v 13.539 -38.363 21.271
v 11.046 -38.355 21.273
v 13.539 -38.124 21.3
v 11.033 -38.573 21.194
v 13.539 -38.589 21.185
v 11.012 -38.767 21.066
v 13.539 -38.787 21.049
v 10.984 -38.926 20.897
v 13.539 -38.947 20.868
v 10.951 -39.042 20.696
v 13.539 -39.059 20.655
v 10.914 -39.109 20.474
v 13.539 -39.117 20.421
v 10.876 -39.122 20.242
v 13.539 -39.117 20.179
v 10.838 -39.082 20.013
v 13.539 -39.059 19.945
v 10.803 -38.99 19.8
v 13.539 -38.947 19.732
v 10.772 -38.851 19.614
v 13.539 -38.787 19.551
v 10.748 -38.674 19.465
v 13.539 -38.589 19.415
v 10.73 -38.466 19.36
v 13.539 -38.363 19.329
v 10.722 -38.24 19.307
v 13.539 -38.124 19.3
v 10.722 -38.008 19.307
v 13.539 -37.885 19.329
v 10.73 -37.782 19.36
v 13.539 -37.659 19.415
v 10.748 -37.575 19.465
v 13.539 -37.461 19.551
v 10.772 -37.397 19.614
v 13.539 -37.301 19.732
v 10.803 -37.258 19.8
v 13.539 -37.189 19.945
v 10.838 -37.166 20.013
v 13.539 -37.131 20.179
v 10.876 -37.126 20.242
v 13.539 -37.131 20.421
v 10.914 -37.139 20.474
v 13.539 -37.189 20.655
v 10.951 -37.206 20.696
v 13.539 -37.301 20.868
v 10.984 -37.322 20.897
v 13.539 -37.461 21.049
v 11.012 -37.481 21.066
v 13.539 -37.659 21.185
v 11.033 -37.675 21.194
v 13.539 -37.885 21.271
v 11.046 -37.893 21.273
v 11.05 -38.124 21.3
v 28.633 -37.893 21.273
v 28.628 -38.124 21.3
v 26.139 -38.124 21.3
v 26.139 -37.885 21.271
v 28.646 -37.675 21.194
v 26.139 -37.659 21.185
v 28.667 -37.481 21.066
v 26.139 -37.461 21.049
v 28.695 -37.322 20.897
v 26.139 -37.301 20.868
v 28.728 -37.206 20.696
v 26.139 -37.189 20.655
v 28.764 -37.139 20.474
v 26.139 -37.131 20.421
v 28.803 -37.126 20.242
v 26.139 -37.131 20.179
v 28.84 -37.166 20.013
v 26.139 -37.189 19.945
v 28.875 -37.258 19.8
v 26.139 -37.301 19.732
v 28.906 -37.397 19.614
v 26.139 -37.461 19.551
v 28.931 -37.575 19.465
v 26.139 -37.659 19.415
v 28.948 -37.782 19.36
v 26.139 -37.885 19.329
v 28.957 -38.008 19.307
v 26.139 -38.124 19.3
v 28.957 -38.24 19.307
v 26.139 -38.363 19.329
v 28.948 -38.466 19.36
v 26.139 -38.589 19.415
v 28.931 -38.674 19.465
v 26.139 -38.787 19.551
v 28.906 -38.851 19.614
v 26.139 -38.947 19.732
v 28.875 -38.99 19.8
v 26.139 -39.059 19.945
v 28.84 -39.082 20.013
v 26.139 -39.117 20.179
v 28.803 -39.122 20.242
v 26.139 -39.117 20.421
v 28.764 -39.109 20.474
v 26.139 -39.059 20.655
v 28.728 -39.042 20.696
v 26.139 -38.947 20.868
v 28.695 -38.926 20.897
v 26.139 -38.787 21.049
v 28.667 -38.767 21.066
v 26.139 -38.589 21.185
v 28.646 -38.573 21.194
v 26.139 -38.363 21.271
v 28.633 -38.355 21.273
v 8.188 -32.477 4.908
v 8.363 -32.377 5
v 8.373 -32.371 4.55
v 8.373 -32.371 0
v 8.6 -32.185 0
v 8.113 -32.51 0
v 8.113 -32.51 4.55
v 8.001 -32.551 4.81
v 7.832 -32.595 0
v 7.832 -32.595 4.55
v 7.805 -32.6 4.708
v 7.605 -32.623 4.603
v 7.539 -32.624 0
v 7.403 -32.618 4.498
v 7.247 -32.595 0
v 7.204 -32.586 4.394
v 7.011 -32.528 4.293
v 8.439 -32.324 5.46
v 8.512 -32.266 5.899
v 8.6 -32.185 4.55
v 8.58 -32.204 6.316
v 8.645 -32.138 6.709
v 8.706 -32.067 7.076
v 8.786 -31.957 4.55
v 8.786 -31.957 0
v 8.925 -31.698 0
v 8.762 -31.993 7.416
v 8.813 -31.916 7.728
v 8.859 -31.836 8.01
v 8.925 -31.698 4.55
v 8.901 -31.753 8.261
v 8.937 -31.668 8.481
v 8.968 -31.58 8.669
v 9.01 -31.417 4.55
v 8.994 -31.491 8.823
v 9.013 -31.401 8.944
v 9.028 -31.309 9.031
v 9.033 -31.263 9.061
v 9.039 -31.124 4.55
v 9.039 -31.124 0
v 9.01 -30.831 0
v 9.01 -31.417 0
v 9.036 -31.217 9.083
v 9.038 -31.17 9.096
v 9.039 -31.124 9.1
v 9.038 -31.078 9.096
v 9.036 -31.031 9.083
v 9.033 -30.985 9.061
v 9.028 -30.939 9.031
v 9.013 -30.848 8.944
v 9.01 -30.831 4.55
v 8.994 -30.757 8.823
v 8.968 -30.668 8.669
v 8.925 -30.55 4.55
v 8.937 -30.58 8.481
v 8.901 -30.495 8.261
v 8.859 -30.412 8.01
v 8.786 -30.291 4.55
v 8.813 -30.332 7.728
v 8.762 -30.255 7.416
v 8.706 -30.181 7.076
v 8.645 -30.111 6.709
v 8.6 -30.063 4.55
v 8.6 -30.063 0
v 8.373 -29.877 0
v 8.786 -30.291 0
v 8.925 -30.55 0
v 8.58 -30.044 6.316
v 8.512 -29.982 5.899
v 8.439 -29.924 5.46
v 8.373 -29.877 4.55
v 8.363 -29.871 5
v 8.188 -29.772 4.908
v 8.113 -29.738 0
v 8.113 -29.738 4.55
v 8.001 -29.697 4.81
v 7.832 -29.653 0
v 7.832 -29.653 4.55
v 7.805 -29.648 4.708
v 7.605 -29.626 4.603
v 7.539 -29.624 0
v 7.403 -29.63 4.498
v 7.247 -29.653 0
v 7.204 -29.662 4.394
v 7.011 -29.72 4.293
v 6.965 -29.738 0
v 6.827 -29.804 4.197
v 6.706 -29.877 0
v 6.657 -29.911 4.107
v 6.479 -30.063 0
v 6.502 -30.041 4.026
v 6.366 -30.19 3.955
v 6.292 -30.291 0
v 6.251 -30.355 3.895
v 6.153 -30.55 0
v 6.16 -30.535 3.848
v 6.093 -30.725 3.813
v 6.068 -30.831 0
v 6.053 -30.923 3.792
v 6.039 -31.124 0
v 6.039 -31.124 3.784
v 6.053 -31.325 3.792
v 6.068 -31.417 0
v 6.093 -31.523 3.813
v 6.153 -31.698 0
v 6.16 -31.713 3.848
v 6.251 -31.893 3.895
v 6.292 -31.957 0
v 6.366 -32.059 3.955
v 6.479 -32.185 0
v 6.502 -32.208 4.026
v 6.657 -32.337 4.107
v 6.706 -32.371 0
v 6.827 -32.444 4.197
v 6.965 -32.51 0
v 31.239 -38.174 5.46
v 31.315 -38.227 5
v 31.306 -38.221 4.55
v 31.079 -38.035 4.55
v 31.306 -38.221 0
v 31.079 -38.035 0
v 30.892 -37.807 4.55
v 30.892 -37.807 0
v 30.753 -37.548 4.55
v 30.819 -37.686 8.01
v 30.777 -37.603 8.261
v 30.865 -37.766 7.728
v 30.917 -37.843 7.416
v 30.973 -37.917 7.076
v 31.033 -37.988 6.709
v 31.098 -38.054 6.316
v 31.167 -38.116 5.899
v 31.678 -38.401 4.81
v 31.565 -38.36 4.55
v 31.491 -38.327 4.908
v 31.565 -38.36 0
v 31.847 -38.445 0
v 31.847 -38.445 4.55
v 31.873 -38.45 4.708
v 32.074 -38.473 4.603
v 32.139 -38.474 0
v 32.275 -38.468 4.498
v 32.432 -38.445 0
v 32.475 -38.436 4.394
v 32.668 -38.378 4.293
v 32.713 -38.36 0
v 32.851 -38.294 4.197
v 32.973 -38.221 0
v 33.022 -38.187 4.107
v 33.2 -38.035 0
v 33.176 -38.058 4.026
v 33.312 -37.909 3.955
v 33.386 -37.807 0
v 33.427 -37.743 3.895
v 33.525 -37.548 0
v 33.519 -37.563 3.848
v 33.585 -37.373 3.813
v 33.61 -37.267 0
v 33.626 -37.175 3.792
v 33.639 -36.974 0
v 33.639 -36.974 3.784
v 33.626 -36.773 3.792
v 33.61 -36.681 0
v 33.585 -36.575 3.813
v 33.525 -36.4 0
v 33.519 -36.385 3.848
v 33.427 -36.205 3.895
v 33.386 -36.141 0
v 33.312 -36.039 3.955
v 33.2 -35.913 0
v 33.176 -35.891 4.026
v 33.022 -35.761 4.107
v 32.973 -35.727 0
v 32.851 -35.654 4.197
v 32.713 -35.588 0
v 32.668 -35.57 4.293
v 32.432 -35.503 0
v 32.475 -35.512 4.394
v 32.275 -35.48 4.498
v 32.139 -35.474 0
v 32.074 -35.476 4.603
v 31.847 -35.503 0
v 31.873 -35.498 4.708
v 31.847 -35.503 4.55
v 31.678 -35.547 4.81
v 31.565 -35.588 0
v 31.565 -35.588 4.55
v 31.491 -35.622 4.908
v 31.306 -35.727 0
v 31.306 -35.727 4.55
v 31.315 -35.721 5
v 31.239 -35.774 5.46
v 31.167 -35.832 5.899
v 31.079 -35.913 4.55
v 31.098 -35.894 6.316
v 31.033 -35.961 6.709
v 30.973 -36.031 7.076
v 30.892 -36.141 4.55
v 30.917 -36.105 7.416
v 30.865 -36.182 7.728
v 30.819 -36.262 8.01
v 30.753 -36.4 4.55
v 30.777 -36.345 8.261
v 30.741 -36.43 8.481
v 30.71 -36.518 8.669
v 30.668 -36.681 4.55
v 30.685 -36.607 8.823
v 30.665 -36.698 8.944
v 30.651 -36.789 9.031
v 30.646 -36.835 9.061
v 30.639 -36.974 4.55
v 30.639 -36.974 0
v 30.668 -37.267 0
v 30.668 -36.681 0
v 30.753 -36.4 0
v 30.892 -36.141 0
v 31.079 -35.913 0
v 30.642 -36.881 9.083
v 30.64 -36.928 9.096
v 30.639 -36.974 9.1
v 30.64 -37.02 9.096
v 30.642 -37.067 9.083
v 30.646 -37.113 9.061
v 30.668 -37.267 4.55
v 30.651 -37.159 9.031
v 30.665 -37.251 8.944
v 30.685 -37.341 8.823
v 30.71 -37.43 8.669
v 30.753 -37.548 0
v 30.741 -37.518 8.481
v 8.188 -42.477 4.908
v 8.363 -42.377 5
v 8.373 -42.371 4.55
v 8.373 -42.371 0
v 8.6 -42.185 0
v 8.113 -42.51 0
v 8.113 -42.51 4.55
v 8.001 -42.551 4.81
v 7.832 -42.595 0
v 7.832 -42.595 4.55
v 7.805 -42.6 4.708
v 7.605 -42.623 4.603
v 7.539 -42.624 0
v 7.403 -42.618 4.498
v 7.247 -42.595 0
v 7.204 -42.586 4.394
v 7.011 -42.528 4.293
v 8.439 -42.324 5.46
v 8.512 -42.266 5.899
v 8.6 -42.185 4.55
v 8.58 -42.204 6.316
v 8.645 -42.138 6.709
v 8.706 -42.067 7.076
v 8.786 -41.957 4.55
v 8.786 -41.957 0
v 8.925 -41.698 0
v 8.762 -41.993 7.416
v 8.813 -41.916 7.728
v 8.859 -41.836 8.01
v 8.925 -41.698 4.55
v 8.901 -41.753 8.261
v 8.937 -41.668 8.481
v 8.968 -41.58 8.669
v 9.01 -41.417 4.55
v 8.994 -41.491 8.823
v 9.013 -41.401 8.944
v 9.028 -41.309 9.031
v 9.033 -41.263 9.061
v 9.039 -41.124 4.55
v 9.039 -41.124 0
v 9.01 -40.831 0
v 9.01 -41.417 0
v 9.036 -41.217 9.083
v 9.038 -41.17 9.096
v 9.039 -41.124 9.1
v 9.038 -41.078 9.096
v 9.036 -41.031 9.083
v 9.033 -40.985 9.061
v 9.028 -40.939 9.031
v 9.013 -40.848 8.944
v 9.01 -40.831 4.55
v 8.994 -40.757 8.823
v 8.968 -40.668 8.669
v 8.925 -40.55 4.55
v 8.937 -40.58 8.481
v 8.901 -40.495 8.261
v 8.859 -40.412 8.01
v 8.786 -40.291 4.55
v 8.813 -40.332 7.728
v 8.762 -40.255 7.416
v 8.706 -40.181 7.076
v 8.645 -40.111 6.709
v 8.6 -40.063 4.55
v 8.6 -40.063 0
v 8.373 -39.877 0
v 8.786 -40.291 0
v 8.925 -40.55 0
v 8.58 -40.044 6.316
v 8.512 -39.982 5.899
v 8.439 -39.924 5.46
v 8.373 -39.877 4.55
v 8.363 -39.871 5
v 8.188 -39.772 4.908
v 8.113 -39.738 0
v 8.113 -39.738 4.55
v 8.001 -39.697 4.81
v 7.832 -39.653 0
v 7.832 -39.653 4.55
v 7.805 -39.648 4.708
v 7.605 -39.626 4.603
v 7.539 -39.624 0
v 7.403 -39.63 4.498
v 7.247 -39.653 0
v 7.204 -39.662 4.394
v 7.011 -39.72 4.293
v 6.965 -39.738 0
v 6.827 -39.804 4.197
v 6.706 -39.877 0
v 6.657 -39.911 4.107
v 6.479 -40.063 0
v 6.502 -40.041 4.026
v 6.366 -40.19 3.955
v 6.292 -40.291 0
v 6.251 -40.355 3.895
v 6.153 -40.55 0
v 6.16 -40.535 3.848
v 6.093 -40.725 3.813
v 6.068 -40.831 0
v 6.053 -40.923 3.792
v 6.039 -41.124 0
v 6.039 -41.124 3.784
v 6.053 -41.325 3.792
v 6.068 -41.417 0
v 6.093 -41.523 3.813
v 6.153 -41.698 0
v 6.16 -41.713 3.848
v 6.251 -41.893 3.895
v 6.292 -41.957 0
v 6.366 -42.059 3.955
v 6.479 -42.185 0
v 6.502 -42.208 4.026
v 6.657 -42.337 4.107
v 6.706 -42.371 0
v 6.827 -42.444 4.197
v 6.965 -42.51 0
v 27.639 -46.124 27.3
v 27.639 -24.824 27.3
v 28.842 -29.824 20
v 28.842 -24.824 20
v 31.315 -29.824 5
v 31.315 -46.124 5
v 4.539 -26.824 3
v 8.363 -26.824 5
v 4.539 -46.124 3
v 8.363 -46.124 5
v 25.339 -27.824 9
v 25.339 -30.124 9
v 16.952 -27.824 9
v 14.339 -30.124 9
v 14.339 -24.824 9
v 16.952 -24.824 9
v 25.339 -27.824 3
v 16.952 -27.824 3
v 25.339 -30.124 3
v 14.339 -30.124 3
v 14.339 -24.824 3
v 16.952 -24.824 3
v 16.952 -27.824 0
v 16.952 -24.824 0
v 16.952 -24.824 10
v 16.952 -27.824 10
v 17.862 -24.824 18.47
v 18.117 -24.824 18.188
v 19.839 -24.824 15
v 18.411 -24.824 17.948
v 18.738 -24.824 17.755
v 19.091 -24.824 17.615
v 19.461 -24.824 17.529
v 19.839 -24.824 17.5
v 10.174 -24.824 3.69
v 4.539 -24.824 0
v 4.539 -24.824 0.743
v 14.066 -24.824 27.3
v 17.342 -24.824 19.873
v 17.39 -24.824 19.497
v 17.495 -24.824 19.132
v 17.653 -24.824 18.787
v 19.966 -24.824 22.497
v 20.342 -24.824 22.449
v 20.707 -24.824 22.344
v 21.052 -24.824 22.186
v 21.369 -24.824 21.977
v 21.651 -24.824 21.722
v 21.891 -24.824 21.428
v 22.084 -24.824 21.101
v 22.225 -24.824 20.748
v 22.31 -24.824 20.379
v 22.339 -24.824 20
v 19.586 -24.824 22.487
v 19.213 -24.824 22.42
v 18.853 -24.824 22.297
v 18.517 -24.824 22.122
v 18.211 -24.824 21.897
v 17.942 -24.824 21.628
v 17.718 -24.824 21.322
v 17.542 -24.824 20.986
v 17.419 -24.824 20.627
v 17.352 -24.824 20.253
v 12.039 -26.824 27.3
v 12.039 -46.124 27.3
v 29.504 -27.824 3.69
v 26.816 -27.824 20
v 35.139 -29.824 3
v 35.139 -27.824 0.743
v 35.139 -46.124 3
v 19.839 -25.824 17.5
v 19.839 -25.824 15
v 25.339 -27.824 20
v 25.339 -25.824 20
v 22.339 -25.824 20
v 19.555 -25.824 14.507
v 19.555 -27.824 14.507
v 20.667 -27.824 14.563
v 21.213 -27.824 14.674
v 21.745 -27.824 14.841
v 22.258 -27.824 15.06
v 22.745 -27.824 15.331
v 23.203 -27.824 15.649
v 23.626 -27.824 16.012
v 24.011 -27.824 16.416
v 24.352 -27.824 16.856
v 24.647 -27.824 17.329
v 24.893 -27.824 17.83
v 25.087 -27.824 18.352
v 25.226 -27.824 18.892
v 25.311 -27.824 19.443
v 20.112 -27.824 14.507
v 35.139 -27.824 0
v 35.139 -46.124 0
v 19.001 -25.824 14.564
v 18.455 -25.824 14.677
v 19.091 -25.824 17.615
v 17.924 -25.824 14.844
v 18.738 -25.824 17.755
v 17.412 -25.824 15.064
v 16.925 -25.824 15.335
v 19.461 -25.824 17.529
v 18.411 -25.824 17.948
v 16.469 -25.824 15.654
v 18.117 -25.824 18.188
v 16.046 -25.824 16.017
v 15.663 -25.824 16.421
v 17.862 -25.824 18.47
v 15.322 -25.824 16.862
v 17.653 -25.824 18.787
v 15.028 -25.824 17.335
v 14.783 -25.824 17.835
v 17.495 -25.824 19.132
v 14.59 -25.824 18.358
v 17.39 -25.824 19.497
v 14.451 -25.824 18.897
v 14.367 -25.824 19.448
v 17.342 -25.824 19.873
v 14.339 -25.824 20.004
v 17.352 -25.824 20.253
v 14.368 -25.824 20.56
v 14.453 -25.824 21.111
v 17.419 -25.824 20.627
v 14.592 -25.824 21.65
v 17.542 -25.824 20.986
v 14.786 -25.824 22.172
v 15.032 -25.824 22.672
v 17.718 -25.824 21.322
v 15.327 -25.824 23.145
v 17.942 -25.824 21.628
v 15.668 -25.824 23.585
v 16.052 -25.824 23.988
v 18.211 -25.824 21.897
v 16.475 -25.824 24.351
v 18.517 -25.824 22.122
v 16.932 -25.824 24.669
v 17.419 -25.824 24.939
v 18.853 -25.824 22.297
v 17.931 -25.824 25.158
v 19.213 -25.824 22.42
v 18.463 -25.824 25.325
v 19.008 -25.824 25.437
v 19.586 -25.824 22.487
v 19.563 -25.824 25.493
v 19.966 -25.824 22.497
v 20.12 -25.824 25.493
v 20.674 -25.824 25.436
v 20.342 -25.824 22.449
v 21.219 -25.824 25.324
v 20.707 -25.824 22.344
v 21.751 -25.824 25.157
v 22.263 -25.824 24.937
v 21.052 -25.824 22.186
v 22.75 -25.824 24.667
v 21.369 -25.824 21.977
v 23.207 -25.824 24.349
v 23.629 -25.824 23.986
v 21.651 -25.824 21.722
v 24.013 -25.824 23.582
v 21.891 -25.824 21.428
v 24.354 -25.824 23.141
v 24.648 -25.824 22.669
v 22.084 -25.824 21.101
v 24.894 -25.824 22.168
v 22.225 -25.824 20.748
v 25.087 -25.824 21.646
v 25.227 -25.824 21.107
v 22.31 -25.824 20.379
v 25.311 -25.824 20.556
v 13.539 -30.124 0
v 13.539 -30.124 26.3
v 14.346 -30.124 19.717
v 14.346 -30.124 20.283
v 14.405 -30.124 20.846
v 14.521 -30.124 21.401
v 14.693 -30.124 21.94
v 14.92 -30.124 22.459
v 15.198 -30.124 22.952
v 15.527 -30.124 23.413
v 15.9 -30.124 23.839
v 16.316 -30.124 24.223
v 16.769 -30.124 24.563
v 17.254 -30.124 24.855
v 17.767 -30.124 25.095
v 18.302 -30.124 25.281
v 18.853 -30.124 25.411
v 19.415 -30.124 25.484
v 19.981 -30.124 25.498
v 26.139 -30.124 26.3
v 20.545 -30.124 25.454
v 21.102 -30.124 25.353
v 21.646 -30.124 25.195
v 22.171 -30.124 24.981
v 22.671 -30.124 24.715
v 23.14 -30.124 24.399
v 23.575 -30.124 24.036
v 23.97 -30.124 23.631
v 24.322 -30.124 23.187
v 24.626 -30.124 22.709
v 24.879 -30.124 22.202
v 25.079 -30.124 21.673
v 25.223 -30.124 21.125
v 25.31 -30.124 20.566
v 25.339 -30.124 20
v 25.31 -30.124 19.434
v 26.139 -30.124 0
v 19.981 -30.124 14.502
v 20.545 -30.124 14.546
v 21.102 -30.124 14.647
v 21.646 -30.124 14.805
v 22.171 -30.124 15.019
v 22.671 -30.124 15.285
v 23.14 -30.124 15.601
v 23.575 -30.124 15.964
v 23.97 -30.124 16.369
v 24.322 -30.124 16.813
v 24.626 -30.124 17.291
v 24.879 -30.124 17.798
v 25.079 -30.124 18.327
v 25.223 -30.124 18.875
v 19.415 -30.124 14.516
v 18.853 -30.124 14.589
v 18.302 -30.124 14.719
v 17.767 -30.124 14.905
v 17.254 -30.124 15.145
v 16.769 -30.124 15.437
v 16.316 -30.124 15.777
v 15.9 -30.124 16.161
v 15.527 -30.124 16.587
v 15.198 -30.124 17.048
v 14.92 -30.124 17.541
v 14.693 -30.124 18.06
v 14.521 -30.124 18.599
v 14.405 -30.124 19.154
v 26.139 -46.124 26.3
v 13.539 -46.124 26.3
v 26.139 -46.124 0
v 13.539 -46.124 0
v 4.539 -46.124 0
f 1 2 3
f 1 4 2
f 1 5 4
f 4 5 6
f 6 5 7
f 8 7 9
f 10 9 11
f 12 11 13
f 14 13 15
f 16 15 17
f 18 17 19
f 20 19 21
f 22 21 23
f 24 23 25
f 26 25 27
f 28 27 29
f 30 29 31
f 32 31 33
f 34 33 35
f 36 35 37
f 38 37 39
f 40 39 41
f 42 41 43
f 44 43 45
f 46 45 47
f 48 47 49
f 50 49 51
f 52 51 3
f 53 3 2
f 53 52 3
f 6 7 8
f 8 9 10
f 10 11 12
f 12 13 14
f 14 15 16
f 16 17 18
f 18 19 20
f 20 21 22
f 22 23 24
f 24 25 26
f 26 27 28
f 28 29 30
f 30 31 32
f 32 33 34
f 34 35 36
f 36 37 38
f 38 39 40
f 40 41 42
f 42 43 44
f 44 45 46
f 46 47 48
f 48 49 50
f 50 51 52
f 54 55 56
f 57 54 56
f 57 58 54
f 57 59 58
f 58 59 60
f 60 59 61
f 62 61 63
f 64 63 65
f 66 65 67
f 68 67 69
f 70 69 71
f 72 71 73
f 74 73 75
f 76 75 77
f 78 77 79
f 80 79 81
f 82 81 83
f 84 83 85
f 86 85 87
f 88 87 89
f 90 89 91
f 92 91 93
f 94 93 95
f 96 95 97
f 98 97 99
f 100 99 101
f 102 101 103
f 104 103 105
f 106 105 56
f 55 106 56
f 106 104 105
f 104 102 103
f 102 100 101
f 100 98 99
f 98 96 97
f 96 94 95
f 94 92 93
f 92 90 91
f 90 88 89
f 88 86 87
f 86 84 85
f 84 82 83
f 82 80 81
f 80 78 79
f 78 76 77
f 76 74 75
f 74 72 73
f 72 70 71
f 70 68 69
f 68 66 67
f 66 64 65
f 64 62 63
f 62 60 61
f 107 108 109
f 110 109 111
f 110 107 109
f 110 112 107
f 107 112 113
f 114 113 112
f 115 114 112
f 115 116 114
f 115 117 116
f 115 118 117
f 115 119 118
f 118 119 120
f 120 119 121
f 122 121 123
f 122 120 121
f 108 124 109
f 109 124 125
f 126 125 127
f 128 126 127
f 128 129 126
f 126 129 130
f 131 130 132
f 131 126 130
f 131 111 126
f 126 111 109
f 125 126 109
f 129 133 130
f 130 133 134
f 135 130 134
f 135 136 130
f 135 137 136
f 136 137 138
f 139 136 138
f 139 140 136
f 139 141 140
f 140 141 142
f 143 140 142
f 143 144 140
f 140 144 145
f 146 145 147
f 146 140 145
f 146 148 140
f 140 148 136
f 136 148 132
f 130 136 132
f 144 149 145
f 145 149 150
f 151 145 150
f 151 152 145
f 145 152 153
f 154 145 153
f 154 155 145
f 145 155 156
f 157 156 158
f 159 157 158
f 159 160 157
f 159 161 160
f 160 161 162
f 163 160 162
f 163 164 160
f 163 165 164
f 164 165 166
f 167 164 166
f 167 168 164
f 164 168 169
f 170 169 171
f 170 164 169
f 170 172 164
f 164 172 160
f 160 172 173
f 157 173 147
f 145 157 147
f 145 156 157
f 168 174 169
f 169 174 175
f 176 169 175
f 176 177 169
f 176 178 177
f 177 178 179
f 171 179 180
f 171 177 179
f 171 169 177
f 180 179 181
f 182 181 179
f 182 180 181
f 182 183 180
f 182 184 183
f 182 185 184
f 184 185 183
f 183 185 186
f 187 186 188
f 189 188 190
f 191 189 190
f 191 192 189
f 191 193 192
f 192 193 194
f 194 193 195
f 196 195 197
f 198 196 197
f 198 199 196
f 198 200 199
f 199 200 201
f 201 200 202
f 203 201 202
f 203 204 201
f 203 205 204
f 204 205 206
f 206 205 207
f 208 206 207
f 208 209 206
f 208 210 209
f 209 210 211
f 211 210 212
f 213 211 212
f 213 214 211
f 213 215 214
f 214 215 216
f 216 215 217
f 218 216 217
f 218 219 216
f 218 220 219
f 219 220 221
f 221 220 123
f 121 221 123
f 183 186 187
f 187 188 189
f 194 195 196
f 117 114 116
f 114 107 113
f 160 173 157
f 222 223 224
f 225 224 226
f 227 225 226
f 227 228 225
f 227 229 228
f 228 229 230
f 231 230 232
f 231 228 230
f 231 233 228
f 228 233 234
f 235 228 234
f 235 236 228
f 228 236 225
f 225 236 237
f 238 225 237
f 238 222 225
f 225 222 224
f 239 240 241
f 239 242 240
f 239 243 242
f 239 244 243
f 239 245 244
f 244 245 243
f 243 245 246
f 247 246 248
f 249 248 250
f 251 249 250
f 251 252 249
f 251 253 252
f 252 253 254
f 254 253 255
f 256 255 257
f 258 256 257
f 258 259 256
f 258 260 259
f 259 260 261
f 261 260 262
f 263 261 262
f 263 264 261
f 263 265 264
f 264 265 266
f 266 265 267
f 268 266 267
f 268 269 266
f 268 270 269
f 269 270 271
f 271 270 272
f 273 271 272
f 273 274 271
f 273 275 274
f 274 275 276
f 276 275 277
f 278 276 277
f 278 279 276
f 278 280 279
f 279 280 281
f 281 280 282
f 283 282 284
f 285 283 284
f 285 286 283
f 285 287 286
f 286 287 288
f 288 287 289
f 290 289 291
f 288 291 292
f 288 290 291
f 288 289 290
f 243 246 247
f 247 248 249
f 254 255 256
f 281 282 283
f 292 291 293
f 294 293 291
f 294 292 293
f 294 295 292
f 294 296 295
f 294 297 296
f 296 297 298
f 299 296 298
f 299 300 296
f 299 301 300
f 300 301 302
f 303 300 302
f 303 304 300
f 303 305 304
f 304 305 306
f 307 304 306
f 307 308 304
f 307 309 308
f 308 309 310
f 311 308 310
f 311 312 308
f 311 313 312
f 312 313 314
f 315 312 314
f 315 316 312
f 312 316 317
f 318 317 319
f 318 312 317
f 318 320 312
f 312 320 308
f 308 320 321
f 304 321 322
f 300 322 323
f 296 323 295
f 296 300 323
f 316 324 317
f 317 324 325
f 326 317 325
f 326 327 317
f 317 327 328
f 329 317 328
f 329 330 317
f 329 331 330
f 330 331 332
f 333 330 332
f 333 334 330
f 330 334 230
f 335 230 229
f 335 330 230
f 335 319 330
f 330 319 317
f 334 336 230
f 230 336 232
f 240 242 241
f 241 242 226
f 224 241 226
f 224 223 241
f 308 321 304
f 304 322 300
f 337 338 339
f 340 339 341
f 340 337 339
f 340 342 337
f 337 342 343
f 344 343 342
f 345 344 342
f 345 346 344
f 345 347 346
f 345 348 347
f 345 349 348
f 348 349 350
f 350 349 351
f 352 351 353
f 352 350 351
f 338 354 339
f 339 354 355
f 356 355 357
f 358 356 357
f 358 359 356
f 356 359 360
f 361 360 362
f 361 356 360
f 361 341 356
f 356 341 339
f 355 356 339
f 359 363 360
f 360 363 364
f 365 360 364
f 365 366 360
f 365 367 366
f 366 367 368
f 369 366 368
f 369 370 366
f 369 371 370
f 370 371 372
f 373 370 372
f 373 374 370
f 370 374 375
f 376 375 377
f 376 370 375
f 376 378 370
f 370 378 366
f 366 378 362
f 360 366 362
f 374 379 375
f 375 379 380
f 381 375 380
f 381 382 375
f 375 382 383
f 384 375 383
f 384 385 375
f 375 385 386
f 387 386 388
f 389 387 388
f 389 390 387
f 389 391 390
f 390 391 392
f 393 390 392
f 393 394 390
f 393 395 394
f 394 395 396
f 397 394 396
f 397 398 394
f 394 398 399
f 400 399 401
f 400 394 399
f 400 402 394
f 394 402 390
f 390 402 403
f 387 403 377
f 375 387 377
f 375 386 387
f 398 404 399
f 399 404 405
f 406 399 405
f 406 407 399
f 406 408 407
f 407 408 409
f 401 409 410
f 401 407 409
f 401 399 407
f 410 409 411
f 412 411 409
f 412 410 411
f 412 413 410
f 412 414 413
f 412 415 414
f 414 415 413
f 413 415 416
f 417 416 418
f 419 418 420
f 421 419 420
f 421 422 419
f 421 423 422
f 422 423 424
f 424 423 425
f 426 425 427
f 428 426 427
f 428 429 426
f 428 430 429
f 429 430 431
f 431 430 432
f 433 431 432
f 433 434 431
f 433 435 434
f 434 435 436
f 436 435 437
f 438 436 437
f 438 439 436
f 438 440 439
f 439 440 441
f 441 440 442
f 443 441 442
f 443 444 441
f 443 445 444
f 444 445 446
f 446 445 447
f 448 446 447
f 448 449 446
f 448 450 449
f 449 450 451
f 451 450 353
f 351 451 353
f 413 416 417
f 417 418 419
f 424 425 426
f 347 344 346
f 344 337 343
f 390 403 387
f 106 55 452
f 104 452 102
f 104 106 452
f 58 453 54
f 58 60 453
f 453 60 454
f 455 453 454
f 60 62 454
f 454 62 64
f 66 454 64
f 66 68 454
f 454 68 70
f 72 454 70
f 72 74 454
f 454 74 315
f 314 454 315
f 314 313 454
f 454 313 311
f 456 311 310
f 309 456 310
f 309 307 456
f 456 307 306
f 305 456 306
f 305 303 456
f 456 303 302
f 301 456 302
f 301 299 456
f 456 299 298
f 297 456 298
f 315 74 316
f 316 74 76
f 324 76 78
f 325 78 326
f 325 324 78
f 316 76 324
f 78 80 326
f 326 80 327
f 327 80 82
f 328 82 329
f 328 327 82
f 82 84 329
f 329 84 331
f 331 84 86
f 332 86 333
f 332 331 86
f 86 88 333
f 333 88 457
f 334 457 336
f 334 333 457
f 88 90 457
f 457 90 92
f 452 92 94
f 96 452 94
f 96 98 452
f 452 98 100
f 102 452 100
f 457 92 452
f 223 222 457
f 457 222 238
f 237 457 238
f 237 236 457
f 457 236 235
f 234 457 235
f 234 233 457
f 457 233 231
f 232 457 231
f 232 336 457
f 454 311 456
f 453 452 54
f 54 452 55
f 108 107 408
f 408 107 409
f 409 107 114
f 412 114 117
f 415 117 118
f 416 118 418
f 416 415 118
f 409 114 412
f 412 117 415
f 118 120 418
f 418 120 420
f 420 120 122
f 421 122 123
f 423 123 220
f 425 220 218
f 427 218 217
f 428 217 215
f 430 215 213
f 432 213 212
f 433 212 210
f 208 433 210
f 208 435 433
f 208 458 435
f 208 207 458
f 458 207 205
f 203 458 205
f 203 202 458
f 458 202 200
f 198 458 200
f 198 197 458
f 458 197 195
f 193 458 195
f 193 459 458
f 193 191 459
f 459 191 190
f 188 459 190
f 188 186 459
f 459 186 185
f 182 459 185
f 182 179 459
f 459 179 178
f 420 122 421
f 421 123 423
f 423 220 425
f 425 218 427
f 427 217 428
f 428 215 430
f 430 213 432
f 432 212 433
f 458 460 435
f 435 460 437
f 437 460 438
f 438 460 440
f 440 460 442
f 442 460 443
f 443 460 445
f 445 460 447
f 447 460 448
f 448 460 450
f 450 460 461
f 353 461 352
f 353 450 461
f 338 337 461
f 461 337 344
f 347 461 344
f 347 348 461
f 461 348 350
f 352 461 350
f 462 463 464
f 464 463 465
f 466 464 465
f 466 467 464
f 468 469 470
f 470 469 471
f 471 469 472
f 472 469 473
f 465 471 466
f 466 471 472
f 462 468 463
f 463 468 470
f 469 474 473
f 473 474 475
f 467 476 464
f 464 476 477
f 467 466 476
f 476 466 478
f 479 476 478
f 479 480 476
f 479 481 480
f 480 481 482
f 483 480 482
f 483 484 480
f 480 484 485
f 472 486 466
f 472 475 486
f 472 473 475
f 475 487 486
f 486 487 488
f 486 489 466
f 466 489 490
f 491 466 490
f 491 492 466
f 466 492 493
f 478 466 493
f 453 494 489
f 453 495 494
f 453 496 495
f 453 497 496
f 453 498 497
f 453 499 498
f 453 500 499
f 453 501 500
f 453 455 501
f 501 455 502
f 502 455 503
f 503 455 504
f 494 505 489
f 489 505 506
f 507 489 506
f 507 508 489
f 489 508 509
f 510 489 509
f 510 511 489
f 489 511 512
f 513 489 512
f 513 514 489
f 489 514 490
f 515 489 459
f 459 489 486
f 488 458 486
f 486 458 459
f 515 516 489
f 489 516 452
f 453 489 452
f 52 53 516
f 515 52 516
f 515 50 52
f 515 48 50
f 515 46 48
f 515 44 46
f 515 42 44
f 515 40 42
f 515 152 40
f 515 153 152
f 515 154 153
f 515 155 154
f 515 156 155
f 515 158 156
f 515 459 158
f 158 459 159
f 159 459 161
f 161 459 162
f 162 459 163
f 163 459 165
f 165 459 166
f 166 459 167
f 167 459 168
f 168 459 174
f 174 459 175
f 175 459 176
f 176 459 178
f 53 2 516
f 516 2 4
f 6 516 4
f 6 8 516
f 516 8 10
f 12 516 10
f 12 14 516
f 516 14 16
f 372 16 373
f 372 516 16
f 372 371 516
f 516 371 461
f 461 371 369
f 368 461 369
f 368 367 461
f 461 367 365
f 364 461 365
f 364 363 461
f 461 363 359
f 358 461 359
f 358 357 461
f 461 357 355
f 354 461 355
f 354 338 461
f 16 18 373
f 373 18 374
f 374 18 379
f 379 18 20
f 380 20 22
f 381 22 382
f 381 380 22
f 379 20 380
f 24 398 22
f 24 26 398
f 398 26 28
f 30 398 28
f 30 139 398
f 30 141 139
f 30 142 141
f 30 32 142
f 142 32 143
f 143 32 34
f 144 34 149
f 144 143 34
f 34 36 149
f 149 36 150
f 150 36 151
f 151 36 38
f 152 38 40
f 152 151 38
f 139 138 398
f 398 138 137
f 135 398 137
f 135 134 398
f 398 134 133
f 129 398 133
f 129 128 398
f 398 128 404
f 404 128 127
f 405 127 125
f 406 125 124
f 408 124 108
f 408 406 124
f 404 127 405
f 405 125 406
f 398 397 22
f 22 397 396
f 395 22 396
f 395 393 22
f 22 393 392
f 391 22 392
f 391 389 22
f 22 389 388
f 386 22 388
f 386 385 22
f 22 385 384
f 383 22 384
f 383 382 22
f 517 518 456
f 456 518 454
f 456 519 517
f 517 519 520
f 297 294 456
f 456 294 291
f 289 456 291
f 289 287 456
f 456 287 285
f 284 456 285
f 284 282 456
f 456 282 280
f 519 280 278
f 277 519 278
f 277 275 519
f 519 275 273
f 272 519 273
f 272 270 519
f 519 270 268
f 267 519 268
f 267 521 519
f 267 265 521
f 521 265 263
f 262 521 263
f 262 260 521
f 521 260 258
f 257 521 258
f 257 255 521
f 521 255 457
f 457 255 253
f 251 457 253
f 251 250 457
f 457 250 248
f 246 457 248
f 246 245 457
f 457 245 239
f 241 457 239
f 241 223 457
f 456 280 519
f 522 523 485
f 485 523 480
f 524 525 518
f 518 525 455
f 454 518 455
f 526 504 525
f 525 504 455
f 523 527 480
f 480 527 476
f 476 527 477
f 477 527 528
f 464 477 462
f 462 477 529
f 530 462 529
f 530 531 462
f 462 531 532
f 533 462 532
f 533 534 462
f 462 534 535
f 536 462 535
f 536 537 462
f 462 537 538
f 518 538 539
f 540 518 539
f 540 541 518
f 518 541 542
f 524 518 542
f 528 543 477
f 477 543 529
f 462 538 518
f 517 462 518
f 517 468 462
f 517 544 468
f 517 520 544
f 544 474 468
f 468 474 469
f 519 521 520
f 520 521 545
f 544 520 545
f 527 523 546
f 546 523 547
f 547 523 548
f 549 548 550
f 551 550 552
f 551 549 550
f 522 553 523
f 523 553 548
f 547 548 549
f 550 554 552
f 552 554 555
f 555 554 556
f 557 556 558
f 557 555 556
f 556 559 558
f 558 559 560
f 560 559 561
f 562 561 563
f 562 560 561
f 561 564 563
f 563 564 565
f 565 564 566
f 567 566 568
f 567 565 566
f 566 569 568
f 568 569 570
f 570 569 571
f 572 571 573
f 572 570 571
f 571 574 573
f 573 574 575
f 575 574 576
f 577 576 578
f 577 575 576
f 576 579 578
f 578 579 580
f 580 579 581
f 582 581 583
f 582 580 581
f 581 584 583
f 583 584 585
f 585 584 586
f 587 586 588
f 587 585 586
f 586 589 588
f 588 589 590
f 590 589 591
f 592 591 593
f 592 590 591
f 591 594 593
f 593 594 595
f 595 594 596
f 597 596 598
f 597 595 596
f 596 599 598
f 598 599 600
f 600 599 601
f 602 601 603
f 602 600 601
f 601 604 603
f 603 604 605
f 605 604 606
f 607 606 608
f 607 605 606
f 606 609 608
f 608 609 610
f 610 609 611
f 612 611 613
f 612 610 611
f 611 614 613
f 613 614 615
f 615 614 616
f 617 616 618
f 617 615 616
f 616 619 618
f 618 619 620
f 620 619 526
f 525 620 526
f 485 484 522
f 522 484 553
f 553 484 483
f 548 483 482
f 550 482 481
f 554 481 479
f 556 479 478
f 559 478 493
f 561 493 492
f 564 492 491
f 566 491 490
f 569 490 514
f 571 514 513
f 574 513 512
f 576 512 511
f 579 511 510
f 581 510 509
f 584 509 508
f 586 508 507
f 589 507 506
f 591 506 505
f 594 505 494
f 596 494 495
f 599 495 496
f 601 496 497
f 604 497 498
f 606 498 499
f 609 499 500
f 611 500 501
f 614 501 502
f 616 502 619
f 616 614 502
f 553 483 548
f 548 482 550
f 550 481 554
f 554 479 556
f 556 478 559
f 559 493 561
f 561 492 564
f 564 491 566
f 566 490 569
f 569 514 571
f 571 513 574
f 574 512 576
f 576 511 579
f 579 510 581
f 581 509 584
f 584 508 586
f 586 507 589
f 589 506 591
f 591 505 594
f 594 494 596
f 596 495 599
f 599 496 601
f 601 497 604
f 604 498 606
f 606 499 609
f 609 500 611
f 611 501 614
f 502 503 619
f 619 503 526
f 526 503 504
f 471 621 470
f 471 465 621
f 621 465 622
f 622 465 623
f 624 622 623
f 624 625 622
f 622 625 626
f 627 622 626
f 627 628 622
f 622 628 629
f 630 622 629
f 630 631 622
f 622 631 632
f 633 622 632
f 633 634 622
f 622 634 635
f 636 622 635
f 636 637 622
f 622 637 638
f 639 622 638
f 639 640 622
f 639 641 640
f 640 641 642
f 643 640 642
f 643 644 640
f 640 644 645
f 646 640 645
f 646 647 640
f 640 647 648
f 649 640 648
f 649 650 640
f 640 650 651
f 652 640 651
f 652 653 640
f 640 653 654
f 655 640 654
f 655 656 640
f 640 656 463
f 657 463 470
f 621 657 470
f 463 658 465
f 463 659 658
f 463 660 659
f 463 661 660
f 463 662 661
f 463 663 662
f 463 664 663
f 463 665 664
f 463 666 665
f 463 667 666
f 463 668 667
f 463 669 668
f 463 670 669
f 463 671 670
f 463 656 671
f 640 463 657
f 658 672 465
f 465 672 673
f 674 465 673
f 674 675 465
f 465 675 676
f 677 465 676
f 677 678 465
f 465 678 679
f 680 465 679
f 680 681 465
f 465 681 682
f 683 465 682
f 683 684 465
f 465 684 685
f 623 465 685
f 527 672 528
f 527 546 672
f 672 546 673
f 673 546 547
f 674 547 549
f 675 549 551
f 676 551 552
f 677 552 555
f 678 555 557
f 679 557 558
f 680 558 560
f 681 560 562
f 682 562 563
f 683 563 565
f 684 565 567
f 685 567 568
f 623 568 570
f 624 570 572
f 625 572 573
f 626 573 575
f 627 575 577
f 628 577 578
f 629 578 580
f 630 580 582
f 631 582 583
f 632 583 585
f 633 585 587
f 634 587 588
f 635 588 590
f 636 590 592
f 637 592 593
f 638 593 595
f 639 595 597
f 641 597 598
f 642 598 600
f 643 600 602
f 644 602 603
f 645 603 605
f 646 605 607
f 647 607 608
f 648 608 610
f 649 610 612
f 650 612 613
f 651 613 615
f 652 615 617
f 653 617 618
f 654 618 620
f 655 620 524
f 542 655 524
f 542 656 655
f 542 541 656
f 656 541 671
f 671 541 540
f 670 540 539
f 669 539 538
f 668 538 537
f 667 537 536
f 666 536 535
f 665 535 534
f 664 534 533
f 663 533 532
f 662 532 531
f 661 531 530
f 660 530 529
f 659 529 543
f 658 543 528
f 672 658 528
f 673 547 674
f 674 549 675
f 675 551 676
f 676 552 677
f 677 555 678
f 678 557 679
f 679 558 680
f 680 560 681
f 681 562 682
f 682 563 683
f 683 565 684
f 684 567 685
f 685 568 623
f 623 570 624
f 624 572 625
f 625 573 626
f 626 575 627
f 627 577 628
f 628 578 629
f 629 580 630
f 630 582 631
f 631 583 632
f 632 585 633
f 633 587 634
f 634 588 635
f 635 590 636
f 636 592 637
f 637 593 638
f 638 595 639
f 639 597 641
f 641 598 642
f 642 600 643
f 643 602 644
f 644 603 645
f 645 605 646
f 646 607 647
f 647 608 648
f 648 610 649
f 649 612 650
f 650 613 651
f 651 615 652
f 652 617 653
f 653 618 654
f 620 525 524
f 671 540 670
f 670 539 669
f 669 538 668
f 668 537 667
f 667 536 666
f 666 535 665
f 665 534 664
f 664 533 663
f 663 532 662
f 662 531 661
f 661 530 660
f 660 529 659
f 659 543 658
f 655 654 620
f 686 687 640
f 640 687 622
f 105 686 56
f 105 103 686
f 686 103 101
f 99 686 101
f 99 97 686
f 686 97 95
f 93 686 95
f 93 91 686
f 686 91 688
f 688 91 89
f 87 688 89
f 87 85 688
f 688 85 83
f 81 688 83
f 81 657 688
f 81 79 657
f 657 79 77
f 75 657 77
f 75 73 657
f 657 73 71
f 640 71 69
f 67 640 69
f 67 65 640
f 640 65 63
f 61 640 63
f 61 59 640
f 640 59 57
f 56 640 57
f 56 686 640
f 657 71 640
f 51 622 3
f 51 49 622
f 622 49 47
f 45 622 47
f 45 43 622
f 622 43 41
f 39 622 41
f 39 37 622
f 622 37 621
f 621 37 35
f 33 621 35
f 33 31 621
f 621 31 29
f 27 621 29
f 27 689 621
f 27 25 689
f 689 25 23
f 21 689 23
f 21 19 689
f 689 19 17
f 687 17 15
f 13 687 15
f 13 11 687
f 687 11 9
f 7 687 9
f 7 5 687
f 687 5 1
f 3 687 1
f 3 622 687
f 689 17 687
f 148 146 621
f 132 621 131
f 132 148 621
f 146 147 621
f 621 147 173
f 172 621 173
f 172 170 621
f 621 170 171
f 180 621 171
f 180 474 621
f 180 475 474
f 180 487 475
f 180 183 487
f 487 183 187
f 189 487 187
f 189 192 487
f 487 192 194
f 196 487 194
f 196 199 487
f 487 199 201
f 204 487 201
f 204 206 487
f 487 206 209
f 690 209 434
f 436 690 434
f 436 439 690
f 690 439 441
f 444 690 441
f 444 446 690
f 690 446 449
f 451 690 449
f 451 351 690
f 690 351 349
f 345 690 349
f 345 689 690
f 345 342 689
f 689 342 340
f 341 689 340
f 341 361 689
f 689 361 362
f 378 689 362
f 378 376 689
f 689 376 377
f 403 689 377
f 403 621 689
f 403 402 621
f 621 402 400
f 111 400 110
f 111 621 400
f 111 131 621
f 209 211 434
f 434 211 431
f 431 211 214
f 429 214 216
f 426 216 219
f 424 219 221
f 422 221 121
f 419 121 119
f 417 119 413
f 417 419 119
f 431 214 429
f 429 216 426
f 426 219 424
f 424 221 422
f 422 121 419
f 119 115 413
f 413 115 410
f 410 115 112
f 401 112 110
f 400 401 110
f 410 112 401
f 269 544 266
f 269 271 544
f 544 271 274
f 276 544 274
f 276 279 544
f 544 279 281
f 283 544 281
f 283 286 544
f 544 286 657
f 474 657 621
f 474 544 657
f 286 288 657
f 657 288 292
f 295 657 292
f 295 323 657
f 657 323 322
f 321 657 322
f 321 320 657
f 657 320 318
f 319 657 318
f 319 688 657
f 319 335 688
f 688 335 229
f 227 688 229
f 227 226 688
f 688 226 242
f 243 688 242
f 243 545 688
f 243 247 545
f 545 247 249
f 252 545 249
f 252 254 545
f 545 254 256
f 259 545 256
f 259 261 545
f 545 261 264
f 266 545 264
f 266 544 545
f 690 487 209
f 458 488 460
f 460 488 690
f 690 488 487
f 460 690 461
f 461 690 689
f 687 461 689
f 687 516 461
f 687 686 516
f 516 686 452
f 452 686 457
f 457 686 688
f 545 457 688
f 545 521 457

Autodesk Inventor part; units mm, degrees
ref_plane "YZ Plane" through (0, 0, 0) normal (1, 0, 0) x (0, 1, 0)
ref_plane "XZ Plane" through (0, 0, 0) normal (0, 1, 0) x (-1, 0, 0)
ref_plane "XY Plane" through (0, 0, 0) normal (0, 0, 1) x (1, 0, 0)
ref_plane "Work Plane1" through (14.3392, -46.1241, 0) normal (0, -1, 0) x (-1, 0, 0)
sketch "Sketch1" plane through (14.3392, -46.1241, 0) normal (0, -1, 0) x (-1, 0, 0)
  line L0 (-22.1702, 0) -> (47.1015, 0) projected
  line L1 (0.3, -25.8) -> (-11.3, -25.8) construction
  line L2 (-5.5, -25.8) -> (-5.5, 0) construction
  line L3 (0.8, 0) -> (0.8, -26.3)
  line L4 (0.8, -26.3) -> (-11.8, -26.3)
  line L5 (-11.8, -26.3) -> (-11.8, 0)
  line L6 (6.8, 0) -> (2.3, -27.3)
  line L7 (2.3, -27.3) -> (-13.3, -27.3)
  line L8 (-13.3, -27.3) -> (-17.8, 0)
  line L9 (5.9758, -5) -> (9.8, -3)
  line L10 (9.8, -3) -> (9.8, 0)
  line L11 (-16.9758, -5) -> (-20.8, -3)
  line L12 (-20.8, -3) -> (-20.8, 0)
  line L13 (5.9758, -5) -> (-16.9758, -5) construction
  line L14 (9.8, -3) -> (-20.8, -3) construction
  point P0 (14.3392, 0)
  dimension "d0" = 1
  dimension "d1" = 0.5
  dimension "d2" = 0.5
  dimension "d3" = 1.5
  dimension "d4" = 6
  dimension "d24" = 3
  dimension "d25" = 2
  dimension "d26" = 3
  dimension "d27" = 3
extrude "ext_maincage" add sketch "Sketch1" against normal blind 16 contours L0 L8 L11 L12 | L0 L5 L4 L3 L6 L7 L8 | L0 L10 L9 L6
sketch "Sketch2" plane through (14.3392, -30.1241, 0) normal (0, 1, 0) x (1, 0, 0)
  line L0 (-0.8, -26.3) -> (-0.8, 0) projected
  line L1 (-2.3, -27.3) -> (13.3, -27.3) projected
  line L2 (11.8, 0) -> (11.8, -26.3) projected
  line L3 (11.8, -26.3) -> (-0.8, -26.3) projected
  circle A0 centre (5.5, -20) radius 5.5
  circle A1 centre (5.5, -20) radius 7.3
  line L4 (-0.8, 0) -> (-0.8, -16.3122)
  line L5 (-0.8, -23.6878) -> (-0.8, -26.3)
  line L6 (-0.8, -26.3) -> (1.8122, -26.3)
  line L7 (9.1878, -26.3) -> (11.8, -26.3)
  line L8 (11.8, -23.6878) -> (11.8, -26.3)
  line L9 (-0.8, 0) -> (11.8, 0)
  line L10 (11.8, 0) -> (11.8, -16.3122)
  line L11 (-0.8, -16.3122) -> (-0.8, 0)
  line L12 (-0.8, 0) -> (-9.8, 0) projected
  line L13 (-9.8, 0) -> (-9.8, -3) projected
  line L14 (-9.8, -3) -> (-5.9758, -5) projected
  line L15 (-5.9758, -5) -> (-2.3, -27.3) projected
  line L16 (-2.3, -27.3) -> (13.3, -27.3) projected
  line L17 (13.3, -27.3) -> (16.9758, -5) projected
  line L18 (16.9758, -5) -> (20.8, -3) projected
  line L19 (20.8, -3) -> (20.8, 0) projected
  line L20 (20.8, 0) -> (11.8, 0) projected
  line L21 (11.8, 0) -> (11.8, -26.3) projected
  line L22 (11.8, -26.3) -> (-0.8, -26.3) projected
  line L23 (-0.8, -26.3) -> (-0.8, 0) projected
  point P0 (-6.8, 0)
  point P1 (17.8, 0)
  point P2 (-14.3392, 0)
  point P3 (3.5163, -12.9747)
  dimension "d7" = 11
extrude "ext_backhousing" add sketch "Sketch2" along normal blind 4.3
sketch "Sketch3" plane through (14.3392, -25.8241, 0) normal (0, 1, 0) x (1, 0, 0)
  line L0 (17.8, 0) -> (-6.8, 0) projected
  line L1 (-6.8, 0) -> (-2.3, -27.3) projected
  line L2 (-2.3, -27.3) -> (13.3, -27.3) projected
  line L3 (13.3, -27.3) -> (17.8, 0) projected
  circle A0 centre (5.5, -20) radius 2.5
  circle A1 centre (5.5, -20) radius 5.5 projected
  line L4 (20.8, 0) -> (-9.8, 0) projected
  line L5 (-9.8, 0) -> (-9.8, -3) projected
  line L6 (-9.8, -3) -> (-5.9758, -5) projected
  line L7 (-5.9758, -5) -> (-2.3, -27.3) projected
  line L8 (-2.3, -27.3) -> (13.3, -27.3) projected
  line L9 (13.3, -27.3) -> (16.9758, -5) projected
  line L10 (16.9758, -5) -> (20.8, -3) projected
  line L11 (20.8, -3) -> (20.8, 0) projected
  point P0 (-0.8, 0)
  point P1 (-14.3392, 0)
  dimension "d10" = 5
extrude "ext_backcover" add sketch "Sketch3" along normal blind 1 contours L3 L2 L1 L0 | L4 L11 L10 L3 | L1 L6 L5 L4 | A1
sketch "Sketch4" plane through (14.3392, -24.8241, 0) normal (0, 1, 0) x (1, 0, 0)
  circle A0 centre (5.5, -20) radius 2.5 projected
  line L0 (5.5, 0) -> (5.5, -17.5)
  line L1 (5.5, -15) -> (2.6132, -10)
  line L2 (2.6132, -10) -> (2.6132, 0)
  line L3 (20.8, 0) -> (-9.8, 0) projected
  line L4 (13.3, -27.3) -> (16.9758, -5) projected
  line L5 (20.8, -3) -> (20.8, 0) projected
  line L6 (8, -20) -> (14.5033, -20)
  line L7 (-2.3, -27.3) -> (13.3, -27.3) projected
  line L8 (16.9758, -5) -> (20.8, -3) projected
  circle A1 centre (5.5, -20) radius 2.5
  line L9 (14.5643, -19.6299) -> (16.9758, -5)
  line L10 (16.9758, -5) -> (20.8, -3)
  line L11 (20.8, -3) -> (20.8, 0)
  line L12 (20.8, 0) -> (5.5, 0)
  point P0 (-14.3392, 0)
  dimension "d22" = 30
  dimension "d23" = 10
  dimension "d28" = 5
extrude "ext_cut_backcutway" cut sketch "Sketch4" against normal blind 3 contours A0 L0 L3 L5 L8 L4 L6 | L1 L2 L3 L0
chamfer "Chamfer3" distance 2 angle 45 4 edges at (30.0788, -27.8241, 12.5) (33.2272, -27.8241, 4) (6.4513, -24.8241, 4) (10.2013, -24.8241, 16.15)
ref_plane "back_plane" through (14.3392, -24.8241, 0) normal (0, 1, 0) x (1, 0, 0)
sketch "Sketch5" plane through (14.3392, -24.8241, 0) normal (0, 1, 0) x (1, 0, 0)
  line L0 (-0.273, -27.3) -> (13.3, -27.3) projected
  line L1 (2.6132, 0) -> (20.8, 0) projected
  line L2 (11, -9) -> (11, -3)
  line L3 (11, -3) -> (0, -3)
  line L4 (0, -3) -> (0, -9)
  line L5 (0, -9) -> (11, -9)
  line L6 (11, -9) -> (0, -3) construction
  line L7 (11, -3) -> (0, -9) construction
  arc A0 (5.5, -17.5) -> (8, -20) centre (5.5, -20) ccw projected
  line L8 (5.5, -20) -> (5.5, -3) construction
  point P0 (-14.3392, 0)
  point P1 (5.5, -6)
  point P2 (5.5, -6)
  dimension "d33" = 6
  dimension "d34" = 11
  dimension "d37" = 3
extrude "Extrusion5" cut sketch "Sketch5" against normal through all
sketch "Sketch6" plane through (0, 0, 0) normal (0, 0, 1) x (1, 0, 0)
  line L0 (35.1392, -46.1241) -> (35.1392, -27.8241) projected
  circle A0 centre (32.1392, -36.9741) radius 1.5
  line L1 (33.6392, -36.9741) -> (35.1392, -36.9741)
  line L2 (32.1392, -36.9741) -> (33.6392, -36.9741) construction
  line L3 (4.5392, -46.1241) -> (4.5392, -26.8241) projected
  line L4 (4.5392, -46.1241) -> (4.5392, -24.8241) projected
  circle A1 centre (7.5392, -31.1241) radius 1.5
  circle A2 centre (7.5392, -41.1241) radius 1.5
  line L5 (7.5392, -31.1241) -> (7.5392, -41.1241) construction
  line L6 (7.5392, -41.1241) -> (6.0392, -41.1241) construction
  line L7 (7.5392, -31.1241) -> (6.0392, -31.1241) construction
  line L8 (4.5392, -31.1241) -> (6.0392, -31.1241)
  line L9 (4.5392, -41.1241) -> (6.0392, -41.1241)
  line L10 (35.1392, -46.1241) -> (35.1392, -29.8241) projected
  point P0 (0, 0)
  dimension "d38" = 3
  dimension "d40" = 1.5
  dimension "d43" = 10
  dimension "d44" = 5
extrude "Extrusion6" cut sketch "Sketch6" along normal through all
sketch "Sketch7" plane through (26.1392, -46.1241, 0) normal (-1, 0, 0) x (0, 0, 1)
  line L0 (26.3, 0) -> (26.3, 16) projected
  line L1 (0, 0) -> (0, 16) projected
  line L2 (26.3, 8) -> (0, 8) construction
  circle A0 centre (20.3, 8) radius 1
  point P0 (0, 46.1241)
  dimension "d47" = 2
  dimension "d48" = 6
extrude "Extrusion7" cut sketch "Sketch7" along normal through all both and the other way through all
equation "\"d7\" = linact_bearing_diameter"
equation "\"d8\" = linact_bearing_thickness"
equation "\"d38\" = screw_m3_bore_selfthreading"
equation "\"d47\" = screw_m2_bore_selfthreading"
equation "\"linact_bearing_diameter\" = 11"
equation "\"linact_bearing_thickness\" = 4.3"
equation "\"screw_m3_bore_selfthreading\" = 3"
equation "\"screw_m2_bore_selfthreading\" = 2"
properties part number "servo_clamp"
